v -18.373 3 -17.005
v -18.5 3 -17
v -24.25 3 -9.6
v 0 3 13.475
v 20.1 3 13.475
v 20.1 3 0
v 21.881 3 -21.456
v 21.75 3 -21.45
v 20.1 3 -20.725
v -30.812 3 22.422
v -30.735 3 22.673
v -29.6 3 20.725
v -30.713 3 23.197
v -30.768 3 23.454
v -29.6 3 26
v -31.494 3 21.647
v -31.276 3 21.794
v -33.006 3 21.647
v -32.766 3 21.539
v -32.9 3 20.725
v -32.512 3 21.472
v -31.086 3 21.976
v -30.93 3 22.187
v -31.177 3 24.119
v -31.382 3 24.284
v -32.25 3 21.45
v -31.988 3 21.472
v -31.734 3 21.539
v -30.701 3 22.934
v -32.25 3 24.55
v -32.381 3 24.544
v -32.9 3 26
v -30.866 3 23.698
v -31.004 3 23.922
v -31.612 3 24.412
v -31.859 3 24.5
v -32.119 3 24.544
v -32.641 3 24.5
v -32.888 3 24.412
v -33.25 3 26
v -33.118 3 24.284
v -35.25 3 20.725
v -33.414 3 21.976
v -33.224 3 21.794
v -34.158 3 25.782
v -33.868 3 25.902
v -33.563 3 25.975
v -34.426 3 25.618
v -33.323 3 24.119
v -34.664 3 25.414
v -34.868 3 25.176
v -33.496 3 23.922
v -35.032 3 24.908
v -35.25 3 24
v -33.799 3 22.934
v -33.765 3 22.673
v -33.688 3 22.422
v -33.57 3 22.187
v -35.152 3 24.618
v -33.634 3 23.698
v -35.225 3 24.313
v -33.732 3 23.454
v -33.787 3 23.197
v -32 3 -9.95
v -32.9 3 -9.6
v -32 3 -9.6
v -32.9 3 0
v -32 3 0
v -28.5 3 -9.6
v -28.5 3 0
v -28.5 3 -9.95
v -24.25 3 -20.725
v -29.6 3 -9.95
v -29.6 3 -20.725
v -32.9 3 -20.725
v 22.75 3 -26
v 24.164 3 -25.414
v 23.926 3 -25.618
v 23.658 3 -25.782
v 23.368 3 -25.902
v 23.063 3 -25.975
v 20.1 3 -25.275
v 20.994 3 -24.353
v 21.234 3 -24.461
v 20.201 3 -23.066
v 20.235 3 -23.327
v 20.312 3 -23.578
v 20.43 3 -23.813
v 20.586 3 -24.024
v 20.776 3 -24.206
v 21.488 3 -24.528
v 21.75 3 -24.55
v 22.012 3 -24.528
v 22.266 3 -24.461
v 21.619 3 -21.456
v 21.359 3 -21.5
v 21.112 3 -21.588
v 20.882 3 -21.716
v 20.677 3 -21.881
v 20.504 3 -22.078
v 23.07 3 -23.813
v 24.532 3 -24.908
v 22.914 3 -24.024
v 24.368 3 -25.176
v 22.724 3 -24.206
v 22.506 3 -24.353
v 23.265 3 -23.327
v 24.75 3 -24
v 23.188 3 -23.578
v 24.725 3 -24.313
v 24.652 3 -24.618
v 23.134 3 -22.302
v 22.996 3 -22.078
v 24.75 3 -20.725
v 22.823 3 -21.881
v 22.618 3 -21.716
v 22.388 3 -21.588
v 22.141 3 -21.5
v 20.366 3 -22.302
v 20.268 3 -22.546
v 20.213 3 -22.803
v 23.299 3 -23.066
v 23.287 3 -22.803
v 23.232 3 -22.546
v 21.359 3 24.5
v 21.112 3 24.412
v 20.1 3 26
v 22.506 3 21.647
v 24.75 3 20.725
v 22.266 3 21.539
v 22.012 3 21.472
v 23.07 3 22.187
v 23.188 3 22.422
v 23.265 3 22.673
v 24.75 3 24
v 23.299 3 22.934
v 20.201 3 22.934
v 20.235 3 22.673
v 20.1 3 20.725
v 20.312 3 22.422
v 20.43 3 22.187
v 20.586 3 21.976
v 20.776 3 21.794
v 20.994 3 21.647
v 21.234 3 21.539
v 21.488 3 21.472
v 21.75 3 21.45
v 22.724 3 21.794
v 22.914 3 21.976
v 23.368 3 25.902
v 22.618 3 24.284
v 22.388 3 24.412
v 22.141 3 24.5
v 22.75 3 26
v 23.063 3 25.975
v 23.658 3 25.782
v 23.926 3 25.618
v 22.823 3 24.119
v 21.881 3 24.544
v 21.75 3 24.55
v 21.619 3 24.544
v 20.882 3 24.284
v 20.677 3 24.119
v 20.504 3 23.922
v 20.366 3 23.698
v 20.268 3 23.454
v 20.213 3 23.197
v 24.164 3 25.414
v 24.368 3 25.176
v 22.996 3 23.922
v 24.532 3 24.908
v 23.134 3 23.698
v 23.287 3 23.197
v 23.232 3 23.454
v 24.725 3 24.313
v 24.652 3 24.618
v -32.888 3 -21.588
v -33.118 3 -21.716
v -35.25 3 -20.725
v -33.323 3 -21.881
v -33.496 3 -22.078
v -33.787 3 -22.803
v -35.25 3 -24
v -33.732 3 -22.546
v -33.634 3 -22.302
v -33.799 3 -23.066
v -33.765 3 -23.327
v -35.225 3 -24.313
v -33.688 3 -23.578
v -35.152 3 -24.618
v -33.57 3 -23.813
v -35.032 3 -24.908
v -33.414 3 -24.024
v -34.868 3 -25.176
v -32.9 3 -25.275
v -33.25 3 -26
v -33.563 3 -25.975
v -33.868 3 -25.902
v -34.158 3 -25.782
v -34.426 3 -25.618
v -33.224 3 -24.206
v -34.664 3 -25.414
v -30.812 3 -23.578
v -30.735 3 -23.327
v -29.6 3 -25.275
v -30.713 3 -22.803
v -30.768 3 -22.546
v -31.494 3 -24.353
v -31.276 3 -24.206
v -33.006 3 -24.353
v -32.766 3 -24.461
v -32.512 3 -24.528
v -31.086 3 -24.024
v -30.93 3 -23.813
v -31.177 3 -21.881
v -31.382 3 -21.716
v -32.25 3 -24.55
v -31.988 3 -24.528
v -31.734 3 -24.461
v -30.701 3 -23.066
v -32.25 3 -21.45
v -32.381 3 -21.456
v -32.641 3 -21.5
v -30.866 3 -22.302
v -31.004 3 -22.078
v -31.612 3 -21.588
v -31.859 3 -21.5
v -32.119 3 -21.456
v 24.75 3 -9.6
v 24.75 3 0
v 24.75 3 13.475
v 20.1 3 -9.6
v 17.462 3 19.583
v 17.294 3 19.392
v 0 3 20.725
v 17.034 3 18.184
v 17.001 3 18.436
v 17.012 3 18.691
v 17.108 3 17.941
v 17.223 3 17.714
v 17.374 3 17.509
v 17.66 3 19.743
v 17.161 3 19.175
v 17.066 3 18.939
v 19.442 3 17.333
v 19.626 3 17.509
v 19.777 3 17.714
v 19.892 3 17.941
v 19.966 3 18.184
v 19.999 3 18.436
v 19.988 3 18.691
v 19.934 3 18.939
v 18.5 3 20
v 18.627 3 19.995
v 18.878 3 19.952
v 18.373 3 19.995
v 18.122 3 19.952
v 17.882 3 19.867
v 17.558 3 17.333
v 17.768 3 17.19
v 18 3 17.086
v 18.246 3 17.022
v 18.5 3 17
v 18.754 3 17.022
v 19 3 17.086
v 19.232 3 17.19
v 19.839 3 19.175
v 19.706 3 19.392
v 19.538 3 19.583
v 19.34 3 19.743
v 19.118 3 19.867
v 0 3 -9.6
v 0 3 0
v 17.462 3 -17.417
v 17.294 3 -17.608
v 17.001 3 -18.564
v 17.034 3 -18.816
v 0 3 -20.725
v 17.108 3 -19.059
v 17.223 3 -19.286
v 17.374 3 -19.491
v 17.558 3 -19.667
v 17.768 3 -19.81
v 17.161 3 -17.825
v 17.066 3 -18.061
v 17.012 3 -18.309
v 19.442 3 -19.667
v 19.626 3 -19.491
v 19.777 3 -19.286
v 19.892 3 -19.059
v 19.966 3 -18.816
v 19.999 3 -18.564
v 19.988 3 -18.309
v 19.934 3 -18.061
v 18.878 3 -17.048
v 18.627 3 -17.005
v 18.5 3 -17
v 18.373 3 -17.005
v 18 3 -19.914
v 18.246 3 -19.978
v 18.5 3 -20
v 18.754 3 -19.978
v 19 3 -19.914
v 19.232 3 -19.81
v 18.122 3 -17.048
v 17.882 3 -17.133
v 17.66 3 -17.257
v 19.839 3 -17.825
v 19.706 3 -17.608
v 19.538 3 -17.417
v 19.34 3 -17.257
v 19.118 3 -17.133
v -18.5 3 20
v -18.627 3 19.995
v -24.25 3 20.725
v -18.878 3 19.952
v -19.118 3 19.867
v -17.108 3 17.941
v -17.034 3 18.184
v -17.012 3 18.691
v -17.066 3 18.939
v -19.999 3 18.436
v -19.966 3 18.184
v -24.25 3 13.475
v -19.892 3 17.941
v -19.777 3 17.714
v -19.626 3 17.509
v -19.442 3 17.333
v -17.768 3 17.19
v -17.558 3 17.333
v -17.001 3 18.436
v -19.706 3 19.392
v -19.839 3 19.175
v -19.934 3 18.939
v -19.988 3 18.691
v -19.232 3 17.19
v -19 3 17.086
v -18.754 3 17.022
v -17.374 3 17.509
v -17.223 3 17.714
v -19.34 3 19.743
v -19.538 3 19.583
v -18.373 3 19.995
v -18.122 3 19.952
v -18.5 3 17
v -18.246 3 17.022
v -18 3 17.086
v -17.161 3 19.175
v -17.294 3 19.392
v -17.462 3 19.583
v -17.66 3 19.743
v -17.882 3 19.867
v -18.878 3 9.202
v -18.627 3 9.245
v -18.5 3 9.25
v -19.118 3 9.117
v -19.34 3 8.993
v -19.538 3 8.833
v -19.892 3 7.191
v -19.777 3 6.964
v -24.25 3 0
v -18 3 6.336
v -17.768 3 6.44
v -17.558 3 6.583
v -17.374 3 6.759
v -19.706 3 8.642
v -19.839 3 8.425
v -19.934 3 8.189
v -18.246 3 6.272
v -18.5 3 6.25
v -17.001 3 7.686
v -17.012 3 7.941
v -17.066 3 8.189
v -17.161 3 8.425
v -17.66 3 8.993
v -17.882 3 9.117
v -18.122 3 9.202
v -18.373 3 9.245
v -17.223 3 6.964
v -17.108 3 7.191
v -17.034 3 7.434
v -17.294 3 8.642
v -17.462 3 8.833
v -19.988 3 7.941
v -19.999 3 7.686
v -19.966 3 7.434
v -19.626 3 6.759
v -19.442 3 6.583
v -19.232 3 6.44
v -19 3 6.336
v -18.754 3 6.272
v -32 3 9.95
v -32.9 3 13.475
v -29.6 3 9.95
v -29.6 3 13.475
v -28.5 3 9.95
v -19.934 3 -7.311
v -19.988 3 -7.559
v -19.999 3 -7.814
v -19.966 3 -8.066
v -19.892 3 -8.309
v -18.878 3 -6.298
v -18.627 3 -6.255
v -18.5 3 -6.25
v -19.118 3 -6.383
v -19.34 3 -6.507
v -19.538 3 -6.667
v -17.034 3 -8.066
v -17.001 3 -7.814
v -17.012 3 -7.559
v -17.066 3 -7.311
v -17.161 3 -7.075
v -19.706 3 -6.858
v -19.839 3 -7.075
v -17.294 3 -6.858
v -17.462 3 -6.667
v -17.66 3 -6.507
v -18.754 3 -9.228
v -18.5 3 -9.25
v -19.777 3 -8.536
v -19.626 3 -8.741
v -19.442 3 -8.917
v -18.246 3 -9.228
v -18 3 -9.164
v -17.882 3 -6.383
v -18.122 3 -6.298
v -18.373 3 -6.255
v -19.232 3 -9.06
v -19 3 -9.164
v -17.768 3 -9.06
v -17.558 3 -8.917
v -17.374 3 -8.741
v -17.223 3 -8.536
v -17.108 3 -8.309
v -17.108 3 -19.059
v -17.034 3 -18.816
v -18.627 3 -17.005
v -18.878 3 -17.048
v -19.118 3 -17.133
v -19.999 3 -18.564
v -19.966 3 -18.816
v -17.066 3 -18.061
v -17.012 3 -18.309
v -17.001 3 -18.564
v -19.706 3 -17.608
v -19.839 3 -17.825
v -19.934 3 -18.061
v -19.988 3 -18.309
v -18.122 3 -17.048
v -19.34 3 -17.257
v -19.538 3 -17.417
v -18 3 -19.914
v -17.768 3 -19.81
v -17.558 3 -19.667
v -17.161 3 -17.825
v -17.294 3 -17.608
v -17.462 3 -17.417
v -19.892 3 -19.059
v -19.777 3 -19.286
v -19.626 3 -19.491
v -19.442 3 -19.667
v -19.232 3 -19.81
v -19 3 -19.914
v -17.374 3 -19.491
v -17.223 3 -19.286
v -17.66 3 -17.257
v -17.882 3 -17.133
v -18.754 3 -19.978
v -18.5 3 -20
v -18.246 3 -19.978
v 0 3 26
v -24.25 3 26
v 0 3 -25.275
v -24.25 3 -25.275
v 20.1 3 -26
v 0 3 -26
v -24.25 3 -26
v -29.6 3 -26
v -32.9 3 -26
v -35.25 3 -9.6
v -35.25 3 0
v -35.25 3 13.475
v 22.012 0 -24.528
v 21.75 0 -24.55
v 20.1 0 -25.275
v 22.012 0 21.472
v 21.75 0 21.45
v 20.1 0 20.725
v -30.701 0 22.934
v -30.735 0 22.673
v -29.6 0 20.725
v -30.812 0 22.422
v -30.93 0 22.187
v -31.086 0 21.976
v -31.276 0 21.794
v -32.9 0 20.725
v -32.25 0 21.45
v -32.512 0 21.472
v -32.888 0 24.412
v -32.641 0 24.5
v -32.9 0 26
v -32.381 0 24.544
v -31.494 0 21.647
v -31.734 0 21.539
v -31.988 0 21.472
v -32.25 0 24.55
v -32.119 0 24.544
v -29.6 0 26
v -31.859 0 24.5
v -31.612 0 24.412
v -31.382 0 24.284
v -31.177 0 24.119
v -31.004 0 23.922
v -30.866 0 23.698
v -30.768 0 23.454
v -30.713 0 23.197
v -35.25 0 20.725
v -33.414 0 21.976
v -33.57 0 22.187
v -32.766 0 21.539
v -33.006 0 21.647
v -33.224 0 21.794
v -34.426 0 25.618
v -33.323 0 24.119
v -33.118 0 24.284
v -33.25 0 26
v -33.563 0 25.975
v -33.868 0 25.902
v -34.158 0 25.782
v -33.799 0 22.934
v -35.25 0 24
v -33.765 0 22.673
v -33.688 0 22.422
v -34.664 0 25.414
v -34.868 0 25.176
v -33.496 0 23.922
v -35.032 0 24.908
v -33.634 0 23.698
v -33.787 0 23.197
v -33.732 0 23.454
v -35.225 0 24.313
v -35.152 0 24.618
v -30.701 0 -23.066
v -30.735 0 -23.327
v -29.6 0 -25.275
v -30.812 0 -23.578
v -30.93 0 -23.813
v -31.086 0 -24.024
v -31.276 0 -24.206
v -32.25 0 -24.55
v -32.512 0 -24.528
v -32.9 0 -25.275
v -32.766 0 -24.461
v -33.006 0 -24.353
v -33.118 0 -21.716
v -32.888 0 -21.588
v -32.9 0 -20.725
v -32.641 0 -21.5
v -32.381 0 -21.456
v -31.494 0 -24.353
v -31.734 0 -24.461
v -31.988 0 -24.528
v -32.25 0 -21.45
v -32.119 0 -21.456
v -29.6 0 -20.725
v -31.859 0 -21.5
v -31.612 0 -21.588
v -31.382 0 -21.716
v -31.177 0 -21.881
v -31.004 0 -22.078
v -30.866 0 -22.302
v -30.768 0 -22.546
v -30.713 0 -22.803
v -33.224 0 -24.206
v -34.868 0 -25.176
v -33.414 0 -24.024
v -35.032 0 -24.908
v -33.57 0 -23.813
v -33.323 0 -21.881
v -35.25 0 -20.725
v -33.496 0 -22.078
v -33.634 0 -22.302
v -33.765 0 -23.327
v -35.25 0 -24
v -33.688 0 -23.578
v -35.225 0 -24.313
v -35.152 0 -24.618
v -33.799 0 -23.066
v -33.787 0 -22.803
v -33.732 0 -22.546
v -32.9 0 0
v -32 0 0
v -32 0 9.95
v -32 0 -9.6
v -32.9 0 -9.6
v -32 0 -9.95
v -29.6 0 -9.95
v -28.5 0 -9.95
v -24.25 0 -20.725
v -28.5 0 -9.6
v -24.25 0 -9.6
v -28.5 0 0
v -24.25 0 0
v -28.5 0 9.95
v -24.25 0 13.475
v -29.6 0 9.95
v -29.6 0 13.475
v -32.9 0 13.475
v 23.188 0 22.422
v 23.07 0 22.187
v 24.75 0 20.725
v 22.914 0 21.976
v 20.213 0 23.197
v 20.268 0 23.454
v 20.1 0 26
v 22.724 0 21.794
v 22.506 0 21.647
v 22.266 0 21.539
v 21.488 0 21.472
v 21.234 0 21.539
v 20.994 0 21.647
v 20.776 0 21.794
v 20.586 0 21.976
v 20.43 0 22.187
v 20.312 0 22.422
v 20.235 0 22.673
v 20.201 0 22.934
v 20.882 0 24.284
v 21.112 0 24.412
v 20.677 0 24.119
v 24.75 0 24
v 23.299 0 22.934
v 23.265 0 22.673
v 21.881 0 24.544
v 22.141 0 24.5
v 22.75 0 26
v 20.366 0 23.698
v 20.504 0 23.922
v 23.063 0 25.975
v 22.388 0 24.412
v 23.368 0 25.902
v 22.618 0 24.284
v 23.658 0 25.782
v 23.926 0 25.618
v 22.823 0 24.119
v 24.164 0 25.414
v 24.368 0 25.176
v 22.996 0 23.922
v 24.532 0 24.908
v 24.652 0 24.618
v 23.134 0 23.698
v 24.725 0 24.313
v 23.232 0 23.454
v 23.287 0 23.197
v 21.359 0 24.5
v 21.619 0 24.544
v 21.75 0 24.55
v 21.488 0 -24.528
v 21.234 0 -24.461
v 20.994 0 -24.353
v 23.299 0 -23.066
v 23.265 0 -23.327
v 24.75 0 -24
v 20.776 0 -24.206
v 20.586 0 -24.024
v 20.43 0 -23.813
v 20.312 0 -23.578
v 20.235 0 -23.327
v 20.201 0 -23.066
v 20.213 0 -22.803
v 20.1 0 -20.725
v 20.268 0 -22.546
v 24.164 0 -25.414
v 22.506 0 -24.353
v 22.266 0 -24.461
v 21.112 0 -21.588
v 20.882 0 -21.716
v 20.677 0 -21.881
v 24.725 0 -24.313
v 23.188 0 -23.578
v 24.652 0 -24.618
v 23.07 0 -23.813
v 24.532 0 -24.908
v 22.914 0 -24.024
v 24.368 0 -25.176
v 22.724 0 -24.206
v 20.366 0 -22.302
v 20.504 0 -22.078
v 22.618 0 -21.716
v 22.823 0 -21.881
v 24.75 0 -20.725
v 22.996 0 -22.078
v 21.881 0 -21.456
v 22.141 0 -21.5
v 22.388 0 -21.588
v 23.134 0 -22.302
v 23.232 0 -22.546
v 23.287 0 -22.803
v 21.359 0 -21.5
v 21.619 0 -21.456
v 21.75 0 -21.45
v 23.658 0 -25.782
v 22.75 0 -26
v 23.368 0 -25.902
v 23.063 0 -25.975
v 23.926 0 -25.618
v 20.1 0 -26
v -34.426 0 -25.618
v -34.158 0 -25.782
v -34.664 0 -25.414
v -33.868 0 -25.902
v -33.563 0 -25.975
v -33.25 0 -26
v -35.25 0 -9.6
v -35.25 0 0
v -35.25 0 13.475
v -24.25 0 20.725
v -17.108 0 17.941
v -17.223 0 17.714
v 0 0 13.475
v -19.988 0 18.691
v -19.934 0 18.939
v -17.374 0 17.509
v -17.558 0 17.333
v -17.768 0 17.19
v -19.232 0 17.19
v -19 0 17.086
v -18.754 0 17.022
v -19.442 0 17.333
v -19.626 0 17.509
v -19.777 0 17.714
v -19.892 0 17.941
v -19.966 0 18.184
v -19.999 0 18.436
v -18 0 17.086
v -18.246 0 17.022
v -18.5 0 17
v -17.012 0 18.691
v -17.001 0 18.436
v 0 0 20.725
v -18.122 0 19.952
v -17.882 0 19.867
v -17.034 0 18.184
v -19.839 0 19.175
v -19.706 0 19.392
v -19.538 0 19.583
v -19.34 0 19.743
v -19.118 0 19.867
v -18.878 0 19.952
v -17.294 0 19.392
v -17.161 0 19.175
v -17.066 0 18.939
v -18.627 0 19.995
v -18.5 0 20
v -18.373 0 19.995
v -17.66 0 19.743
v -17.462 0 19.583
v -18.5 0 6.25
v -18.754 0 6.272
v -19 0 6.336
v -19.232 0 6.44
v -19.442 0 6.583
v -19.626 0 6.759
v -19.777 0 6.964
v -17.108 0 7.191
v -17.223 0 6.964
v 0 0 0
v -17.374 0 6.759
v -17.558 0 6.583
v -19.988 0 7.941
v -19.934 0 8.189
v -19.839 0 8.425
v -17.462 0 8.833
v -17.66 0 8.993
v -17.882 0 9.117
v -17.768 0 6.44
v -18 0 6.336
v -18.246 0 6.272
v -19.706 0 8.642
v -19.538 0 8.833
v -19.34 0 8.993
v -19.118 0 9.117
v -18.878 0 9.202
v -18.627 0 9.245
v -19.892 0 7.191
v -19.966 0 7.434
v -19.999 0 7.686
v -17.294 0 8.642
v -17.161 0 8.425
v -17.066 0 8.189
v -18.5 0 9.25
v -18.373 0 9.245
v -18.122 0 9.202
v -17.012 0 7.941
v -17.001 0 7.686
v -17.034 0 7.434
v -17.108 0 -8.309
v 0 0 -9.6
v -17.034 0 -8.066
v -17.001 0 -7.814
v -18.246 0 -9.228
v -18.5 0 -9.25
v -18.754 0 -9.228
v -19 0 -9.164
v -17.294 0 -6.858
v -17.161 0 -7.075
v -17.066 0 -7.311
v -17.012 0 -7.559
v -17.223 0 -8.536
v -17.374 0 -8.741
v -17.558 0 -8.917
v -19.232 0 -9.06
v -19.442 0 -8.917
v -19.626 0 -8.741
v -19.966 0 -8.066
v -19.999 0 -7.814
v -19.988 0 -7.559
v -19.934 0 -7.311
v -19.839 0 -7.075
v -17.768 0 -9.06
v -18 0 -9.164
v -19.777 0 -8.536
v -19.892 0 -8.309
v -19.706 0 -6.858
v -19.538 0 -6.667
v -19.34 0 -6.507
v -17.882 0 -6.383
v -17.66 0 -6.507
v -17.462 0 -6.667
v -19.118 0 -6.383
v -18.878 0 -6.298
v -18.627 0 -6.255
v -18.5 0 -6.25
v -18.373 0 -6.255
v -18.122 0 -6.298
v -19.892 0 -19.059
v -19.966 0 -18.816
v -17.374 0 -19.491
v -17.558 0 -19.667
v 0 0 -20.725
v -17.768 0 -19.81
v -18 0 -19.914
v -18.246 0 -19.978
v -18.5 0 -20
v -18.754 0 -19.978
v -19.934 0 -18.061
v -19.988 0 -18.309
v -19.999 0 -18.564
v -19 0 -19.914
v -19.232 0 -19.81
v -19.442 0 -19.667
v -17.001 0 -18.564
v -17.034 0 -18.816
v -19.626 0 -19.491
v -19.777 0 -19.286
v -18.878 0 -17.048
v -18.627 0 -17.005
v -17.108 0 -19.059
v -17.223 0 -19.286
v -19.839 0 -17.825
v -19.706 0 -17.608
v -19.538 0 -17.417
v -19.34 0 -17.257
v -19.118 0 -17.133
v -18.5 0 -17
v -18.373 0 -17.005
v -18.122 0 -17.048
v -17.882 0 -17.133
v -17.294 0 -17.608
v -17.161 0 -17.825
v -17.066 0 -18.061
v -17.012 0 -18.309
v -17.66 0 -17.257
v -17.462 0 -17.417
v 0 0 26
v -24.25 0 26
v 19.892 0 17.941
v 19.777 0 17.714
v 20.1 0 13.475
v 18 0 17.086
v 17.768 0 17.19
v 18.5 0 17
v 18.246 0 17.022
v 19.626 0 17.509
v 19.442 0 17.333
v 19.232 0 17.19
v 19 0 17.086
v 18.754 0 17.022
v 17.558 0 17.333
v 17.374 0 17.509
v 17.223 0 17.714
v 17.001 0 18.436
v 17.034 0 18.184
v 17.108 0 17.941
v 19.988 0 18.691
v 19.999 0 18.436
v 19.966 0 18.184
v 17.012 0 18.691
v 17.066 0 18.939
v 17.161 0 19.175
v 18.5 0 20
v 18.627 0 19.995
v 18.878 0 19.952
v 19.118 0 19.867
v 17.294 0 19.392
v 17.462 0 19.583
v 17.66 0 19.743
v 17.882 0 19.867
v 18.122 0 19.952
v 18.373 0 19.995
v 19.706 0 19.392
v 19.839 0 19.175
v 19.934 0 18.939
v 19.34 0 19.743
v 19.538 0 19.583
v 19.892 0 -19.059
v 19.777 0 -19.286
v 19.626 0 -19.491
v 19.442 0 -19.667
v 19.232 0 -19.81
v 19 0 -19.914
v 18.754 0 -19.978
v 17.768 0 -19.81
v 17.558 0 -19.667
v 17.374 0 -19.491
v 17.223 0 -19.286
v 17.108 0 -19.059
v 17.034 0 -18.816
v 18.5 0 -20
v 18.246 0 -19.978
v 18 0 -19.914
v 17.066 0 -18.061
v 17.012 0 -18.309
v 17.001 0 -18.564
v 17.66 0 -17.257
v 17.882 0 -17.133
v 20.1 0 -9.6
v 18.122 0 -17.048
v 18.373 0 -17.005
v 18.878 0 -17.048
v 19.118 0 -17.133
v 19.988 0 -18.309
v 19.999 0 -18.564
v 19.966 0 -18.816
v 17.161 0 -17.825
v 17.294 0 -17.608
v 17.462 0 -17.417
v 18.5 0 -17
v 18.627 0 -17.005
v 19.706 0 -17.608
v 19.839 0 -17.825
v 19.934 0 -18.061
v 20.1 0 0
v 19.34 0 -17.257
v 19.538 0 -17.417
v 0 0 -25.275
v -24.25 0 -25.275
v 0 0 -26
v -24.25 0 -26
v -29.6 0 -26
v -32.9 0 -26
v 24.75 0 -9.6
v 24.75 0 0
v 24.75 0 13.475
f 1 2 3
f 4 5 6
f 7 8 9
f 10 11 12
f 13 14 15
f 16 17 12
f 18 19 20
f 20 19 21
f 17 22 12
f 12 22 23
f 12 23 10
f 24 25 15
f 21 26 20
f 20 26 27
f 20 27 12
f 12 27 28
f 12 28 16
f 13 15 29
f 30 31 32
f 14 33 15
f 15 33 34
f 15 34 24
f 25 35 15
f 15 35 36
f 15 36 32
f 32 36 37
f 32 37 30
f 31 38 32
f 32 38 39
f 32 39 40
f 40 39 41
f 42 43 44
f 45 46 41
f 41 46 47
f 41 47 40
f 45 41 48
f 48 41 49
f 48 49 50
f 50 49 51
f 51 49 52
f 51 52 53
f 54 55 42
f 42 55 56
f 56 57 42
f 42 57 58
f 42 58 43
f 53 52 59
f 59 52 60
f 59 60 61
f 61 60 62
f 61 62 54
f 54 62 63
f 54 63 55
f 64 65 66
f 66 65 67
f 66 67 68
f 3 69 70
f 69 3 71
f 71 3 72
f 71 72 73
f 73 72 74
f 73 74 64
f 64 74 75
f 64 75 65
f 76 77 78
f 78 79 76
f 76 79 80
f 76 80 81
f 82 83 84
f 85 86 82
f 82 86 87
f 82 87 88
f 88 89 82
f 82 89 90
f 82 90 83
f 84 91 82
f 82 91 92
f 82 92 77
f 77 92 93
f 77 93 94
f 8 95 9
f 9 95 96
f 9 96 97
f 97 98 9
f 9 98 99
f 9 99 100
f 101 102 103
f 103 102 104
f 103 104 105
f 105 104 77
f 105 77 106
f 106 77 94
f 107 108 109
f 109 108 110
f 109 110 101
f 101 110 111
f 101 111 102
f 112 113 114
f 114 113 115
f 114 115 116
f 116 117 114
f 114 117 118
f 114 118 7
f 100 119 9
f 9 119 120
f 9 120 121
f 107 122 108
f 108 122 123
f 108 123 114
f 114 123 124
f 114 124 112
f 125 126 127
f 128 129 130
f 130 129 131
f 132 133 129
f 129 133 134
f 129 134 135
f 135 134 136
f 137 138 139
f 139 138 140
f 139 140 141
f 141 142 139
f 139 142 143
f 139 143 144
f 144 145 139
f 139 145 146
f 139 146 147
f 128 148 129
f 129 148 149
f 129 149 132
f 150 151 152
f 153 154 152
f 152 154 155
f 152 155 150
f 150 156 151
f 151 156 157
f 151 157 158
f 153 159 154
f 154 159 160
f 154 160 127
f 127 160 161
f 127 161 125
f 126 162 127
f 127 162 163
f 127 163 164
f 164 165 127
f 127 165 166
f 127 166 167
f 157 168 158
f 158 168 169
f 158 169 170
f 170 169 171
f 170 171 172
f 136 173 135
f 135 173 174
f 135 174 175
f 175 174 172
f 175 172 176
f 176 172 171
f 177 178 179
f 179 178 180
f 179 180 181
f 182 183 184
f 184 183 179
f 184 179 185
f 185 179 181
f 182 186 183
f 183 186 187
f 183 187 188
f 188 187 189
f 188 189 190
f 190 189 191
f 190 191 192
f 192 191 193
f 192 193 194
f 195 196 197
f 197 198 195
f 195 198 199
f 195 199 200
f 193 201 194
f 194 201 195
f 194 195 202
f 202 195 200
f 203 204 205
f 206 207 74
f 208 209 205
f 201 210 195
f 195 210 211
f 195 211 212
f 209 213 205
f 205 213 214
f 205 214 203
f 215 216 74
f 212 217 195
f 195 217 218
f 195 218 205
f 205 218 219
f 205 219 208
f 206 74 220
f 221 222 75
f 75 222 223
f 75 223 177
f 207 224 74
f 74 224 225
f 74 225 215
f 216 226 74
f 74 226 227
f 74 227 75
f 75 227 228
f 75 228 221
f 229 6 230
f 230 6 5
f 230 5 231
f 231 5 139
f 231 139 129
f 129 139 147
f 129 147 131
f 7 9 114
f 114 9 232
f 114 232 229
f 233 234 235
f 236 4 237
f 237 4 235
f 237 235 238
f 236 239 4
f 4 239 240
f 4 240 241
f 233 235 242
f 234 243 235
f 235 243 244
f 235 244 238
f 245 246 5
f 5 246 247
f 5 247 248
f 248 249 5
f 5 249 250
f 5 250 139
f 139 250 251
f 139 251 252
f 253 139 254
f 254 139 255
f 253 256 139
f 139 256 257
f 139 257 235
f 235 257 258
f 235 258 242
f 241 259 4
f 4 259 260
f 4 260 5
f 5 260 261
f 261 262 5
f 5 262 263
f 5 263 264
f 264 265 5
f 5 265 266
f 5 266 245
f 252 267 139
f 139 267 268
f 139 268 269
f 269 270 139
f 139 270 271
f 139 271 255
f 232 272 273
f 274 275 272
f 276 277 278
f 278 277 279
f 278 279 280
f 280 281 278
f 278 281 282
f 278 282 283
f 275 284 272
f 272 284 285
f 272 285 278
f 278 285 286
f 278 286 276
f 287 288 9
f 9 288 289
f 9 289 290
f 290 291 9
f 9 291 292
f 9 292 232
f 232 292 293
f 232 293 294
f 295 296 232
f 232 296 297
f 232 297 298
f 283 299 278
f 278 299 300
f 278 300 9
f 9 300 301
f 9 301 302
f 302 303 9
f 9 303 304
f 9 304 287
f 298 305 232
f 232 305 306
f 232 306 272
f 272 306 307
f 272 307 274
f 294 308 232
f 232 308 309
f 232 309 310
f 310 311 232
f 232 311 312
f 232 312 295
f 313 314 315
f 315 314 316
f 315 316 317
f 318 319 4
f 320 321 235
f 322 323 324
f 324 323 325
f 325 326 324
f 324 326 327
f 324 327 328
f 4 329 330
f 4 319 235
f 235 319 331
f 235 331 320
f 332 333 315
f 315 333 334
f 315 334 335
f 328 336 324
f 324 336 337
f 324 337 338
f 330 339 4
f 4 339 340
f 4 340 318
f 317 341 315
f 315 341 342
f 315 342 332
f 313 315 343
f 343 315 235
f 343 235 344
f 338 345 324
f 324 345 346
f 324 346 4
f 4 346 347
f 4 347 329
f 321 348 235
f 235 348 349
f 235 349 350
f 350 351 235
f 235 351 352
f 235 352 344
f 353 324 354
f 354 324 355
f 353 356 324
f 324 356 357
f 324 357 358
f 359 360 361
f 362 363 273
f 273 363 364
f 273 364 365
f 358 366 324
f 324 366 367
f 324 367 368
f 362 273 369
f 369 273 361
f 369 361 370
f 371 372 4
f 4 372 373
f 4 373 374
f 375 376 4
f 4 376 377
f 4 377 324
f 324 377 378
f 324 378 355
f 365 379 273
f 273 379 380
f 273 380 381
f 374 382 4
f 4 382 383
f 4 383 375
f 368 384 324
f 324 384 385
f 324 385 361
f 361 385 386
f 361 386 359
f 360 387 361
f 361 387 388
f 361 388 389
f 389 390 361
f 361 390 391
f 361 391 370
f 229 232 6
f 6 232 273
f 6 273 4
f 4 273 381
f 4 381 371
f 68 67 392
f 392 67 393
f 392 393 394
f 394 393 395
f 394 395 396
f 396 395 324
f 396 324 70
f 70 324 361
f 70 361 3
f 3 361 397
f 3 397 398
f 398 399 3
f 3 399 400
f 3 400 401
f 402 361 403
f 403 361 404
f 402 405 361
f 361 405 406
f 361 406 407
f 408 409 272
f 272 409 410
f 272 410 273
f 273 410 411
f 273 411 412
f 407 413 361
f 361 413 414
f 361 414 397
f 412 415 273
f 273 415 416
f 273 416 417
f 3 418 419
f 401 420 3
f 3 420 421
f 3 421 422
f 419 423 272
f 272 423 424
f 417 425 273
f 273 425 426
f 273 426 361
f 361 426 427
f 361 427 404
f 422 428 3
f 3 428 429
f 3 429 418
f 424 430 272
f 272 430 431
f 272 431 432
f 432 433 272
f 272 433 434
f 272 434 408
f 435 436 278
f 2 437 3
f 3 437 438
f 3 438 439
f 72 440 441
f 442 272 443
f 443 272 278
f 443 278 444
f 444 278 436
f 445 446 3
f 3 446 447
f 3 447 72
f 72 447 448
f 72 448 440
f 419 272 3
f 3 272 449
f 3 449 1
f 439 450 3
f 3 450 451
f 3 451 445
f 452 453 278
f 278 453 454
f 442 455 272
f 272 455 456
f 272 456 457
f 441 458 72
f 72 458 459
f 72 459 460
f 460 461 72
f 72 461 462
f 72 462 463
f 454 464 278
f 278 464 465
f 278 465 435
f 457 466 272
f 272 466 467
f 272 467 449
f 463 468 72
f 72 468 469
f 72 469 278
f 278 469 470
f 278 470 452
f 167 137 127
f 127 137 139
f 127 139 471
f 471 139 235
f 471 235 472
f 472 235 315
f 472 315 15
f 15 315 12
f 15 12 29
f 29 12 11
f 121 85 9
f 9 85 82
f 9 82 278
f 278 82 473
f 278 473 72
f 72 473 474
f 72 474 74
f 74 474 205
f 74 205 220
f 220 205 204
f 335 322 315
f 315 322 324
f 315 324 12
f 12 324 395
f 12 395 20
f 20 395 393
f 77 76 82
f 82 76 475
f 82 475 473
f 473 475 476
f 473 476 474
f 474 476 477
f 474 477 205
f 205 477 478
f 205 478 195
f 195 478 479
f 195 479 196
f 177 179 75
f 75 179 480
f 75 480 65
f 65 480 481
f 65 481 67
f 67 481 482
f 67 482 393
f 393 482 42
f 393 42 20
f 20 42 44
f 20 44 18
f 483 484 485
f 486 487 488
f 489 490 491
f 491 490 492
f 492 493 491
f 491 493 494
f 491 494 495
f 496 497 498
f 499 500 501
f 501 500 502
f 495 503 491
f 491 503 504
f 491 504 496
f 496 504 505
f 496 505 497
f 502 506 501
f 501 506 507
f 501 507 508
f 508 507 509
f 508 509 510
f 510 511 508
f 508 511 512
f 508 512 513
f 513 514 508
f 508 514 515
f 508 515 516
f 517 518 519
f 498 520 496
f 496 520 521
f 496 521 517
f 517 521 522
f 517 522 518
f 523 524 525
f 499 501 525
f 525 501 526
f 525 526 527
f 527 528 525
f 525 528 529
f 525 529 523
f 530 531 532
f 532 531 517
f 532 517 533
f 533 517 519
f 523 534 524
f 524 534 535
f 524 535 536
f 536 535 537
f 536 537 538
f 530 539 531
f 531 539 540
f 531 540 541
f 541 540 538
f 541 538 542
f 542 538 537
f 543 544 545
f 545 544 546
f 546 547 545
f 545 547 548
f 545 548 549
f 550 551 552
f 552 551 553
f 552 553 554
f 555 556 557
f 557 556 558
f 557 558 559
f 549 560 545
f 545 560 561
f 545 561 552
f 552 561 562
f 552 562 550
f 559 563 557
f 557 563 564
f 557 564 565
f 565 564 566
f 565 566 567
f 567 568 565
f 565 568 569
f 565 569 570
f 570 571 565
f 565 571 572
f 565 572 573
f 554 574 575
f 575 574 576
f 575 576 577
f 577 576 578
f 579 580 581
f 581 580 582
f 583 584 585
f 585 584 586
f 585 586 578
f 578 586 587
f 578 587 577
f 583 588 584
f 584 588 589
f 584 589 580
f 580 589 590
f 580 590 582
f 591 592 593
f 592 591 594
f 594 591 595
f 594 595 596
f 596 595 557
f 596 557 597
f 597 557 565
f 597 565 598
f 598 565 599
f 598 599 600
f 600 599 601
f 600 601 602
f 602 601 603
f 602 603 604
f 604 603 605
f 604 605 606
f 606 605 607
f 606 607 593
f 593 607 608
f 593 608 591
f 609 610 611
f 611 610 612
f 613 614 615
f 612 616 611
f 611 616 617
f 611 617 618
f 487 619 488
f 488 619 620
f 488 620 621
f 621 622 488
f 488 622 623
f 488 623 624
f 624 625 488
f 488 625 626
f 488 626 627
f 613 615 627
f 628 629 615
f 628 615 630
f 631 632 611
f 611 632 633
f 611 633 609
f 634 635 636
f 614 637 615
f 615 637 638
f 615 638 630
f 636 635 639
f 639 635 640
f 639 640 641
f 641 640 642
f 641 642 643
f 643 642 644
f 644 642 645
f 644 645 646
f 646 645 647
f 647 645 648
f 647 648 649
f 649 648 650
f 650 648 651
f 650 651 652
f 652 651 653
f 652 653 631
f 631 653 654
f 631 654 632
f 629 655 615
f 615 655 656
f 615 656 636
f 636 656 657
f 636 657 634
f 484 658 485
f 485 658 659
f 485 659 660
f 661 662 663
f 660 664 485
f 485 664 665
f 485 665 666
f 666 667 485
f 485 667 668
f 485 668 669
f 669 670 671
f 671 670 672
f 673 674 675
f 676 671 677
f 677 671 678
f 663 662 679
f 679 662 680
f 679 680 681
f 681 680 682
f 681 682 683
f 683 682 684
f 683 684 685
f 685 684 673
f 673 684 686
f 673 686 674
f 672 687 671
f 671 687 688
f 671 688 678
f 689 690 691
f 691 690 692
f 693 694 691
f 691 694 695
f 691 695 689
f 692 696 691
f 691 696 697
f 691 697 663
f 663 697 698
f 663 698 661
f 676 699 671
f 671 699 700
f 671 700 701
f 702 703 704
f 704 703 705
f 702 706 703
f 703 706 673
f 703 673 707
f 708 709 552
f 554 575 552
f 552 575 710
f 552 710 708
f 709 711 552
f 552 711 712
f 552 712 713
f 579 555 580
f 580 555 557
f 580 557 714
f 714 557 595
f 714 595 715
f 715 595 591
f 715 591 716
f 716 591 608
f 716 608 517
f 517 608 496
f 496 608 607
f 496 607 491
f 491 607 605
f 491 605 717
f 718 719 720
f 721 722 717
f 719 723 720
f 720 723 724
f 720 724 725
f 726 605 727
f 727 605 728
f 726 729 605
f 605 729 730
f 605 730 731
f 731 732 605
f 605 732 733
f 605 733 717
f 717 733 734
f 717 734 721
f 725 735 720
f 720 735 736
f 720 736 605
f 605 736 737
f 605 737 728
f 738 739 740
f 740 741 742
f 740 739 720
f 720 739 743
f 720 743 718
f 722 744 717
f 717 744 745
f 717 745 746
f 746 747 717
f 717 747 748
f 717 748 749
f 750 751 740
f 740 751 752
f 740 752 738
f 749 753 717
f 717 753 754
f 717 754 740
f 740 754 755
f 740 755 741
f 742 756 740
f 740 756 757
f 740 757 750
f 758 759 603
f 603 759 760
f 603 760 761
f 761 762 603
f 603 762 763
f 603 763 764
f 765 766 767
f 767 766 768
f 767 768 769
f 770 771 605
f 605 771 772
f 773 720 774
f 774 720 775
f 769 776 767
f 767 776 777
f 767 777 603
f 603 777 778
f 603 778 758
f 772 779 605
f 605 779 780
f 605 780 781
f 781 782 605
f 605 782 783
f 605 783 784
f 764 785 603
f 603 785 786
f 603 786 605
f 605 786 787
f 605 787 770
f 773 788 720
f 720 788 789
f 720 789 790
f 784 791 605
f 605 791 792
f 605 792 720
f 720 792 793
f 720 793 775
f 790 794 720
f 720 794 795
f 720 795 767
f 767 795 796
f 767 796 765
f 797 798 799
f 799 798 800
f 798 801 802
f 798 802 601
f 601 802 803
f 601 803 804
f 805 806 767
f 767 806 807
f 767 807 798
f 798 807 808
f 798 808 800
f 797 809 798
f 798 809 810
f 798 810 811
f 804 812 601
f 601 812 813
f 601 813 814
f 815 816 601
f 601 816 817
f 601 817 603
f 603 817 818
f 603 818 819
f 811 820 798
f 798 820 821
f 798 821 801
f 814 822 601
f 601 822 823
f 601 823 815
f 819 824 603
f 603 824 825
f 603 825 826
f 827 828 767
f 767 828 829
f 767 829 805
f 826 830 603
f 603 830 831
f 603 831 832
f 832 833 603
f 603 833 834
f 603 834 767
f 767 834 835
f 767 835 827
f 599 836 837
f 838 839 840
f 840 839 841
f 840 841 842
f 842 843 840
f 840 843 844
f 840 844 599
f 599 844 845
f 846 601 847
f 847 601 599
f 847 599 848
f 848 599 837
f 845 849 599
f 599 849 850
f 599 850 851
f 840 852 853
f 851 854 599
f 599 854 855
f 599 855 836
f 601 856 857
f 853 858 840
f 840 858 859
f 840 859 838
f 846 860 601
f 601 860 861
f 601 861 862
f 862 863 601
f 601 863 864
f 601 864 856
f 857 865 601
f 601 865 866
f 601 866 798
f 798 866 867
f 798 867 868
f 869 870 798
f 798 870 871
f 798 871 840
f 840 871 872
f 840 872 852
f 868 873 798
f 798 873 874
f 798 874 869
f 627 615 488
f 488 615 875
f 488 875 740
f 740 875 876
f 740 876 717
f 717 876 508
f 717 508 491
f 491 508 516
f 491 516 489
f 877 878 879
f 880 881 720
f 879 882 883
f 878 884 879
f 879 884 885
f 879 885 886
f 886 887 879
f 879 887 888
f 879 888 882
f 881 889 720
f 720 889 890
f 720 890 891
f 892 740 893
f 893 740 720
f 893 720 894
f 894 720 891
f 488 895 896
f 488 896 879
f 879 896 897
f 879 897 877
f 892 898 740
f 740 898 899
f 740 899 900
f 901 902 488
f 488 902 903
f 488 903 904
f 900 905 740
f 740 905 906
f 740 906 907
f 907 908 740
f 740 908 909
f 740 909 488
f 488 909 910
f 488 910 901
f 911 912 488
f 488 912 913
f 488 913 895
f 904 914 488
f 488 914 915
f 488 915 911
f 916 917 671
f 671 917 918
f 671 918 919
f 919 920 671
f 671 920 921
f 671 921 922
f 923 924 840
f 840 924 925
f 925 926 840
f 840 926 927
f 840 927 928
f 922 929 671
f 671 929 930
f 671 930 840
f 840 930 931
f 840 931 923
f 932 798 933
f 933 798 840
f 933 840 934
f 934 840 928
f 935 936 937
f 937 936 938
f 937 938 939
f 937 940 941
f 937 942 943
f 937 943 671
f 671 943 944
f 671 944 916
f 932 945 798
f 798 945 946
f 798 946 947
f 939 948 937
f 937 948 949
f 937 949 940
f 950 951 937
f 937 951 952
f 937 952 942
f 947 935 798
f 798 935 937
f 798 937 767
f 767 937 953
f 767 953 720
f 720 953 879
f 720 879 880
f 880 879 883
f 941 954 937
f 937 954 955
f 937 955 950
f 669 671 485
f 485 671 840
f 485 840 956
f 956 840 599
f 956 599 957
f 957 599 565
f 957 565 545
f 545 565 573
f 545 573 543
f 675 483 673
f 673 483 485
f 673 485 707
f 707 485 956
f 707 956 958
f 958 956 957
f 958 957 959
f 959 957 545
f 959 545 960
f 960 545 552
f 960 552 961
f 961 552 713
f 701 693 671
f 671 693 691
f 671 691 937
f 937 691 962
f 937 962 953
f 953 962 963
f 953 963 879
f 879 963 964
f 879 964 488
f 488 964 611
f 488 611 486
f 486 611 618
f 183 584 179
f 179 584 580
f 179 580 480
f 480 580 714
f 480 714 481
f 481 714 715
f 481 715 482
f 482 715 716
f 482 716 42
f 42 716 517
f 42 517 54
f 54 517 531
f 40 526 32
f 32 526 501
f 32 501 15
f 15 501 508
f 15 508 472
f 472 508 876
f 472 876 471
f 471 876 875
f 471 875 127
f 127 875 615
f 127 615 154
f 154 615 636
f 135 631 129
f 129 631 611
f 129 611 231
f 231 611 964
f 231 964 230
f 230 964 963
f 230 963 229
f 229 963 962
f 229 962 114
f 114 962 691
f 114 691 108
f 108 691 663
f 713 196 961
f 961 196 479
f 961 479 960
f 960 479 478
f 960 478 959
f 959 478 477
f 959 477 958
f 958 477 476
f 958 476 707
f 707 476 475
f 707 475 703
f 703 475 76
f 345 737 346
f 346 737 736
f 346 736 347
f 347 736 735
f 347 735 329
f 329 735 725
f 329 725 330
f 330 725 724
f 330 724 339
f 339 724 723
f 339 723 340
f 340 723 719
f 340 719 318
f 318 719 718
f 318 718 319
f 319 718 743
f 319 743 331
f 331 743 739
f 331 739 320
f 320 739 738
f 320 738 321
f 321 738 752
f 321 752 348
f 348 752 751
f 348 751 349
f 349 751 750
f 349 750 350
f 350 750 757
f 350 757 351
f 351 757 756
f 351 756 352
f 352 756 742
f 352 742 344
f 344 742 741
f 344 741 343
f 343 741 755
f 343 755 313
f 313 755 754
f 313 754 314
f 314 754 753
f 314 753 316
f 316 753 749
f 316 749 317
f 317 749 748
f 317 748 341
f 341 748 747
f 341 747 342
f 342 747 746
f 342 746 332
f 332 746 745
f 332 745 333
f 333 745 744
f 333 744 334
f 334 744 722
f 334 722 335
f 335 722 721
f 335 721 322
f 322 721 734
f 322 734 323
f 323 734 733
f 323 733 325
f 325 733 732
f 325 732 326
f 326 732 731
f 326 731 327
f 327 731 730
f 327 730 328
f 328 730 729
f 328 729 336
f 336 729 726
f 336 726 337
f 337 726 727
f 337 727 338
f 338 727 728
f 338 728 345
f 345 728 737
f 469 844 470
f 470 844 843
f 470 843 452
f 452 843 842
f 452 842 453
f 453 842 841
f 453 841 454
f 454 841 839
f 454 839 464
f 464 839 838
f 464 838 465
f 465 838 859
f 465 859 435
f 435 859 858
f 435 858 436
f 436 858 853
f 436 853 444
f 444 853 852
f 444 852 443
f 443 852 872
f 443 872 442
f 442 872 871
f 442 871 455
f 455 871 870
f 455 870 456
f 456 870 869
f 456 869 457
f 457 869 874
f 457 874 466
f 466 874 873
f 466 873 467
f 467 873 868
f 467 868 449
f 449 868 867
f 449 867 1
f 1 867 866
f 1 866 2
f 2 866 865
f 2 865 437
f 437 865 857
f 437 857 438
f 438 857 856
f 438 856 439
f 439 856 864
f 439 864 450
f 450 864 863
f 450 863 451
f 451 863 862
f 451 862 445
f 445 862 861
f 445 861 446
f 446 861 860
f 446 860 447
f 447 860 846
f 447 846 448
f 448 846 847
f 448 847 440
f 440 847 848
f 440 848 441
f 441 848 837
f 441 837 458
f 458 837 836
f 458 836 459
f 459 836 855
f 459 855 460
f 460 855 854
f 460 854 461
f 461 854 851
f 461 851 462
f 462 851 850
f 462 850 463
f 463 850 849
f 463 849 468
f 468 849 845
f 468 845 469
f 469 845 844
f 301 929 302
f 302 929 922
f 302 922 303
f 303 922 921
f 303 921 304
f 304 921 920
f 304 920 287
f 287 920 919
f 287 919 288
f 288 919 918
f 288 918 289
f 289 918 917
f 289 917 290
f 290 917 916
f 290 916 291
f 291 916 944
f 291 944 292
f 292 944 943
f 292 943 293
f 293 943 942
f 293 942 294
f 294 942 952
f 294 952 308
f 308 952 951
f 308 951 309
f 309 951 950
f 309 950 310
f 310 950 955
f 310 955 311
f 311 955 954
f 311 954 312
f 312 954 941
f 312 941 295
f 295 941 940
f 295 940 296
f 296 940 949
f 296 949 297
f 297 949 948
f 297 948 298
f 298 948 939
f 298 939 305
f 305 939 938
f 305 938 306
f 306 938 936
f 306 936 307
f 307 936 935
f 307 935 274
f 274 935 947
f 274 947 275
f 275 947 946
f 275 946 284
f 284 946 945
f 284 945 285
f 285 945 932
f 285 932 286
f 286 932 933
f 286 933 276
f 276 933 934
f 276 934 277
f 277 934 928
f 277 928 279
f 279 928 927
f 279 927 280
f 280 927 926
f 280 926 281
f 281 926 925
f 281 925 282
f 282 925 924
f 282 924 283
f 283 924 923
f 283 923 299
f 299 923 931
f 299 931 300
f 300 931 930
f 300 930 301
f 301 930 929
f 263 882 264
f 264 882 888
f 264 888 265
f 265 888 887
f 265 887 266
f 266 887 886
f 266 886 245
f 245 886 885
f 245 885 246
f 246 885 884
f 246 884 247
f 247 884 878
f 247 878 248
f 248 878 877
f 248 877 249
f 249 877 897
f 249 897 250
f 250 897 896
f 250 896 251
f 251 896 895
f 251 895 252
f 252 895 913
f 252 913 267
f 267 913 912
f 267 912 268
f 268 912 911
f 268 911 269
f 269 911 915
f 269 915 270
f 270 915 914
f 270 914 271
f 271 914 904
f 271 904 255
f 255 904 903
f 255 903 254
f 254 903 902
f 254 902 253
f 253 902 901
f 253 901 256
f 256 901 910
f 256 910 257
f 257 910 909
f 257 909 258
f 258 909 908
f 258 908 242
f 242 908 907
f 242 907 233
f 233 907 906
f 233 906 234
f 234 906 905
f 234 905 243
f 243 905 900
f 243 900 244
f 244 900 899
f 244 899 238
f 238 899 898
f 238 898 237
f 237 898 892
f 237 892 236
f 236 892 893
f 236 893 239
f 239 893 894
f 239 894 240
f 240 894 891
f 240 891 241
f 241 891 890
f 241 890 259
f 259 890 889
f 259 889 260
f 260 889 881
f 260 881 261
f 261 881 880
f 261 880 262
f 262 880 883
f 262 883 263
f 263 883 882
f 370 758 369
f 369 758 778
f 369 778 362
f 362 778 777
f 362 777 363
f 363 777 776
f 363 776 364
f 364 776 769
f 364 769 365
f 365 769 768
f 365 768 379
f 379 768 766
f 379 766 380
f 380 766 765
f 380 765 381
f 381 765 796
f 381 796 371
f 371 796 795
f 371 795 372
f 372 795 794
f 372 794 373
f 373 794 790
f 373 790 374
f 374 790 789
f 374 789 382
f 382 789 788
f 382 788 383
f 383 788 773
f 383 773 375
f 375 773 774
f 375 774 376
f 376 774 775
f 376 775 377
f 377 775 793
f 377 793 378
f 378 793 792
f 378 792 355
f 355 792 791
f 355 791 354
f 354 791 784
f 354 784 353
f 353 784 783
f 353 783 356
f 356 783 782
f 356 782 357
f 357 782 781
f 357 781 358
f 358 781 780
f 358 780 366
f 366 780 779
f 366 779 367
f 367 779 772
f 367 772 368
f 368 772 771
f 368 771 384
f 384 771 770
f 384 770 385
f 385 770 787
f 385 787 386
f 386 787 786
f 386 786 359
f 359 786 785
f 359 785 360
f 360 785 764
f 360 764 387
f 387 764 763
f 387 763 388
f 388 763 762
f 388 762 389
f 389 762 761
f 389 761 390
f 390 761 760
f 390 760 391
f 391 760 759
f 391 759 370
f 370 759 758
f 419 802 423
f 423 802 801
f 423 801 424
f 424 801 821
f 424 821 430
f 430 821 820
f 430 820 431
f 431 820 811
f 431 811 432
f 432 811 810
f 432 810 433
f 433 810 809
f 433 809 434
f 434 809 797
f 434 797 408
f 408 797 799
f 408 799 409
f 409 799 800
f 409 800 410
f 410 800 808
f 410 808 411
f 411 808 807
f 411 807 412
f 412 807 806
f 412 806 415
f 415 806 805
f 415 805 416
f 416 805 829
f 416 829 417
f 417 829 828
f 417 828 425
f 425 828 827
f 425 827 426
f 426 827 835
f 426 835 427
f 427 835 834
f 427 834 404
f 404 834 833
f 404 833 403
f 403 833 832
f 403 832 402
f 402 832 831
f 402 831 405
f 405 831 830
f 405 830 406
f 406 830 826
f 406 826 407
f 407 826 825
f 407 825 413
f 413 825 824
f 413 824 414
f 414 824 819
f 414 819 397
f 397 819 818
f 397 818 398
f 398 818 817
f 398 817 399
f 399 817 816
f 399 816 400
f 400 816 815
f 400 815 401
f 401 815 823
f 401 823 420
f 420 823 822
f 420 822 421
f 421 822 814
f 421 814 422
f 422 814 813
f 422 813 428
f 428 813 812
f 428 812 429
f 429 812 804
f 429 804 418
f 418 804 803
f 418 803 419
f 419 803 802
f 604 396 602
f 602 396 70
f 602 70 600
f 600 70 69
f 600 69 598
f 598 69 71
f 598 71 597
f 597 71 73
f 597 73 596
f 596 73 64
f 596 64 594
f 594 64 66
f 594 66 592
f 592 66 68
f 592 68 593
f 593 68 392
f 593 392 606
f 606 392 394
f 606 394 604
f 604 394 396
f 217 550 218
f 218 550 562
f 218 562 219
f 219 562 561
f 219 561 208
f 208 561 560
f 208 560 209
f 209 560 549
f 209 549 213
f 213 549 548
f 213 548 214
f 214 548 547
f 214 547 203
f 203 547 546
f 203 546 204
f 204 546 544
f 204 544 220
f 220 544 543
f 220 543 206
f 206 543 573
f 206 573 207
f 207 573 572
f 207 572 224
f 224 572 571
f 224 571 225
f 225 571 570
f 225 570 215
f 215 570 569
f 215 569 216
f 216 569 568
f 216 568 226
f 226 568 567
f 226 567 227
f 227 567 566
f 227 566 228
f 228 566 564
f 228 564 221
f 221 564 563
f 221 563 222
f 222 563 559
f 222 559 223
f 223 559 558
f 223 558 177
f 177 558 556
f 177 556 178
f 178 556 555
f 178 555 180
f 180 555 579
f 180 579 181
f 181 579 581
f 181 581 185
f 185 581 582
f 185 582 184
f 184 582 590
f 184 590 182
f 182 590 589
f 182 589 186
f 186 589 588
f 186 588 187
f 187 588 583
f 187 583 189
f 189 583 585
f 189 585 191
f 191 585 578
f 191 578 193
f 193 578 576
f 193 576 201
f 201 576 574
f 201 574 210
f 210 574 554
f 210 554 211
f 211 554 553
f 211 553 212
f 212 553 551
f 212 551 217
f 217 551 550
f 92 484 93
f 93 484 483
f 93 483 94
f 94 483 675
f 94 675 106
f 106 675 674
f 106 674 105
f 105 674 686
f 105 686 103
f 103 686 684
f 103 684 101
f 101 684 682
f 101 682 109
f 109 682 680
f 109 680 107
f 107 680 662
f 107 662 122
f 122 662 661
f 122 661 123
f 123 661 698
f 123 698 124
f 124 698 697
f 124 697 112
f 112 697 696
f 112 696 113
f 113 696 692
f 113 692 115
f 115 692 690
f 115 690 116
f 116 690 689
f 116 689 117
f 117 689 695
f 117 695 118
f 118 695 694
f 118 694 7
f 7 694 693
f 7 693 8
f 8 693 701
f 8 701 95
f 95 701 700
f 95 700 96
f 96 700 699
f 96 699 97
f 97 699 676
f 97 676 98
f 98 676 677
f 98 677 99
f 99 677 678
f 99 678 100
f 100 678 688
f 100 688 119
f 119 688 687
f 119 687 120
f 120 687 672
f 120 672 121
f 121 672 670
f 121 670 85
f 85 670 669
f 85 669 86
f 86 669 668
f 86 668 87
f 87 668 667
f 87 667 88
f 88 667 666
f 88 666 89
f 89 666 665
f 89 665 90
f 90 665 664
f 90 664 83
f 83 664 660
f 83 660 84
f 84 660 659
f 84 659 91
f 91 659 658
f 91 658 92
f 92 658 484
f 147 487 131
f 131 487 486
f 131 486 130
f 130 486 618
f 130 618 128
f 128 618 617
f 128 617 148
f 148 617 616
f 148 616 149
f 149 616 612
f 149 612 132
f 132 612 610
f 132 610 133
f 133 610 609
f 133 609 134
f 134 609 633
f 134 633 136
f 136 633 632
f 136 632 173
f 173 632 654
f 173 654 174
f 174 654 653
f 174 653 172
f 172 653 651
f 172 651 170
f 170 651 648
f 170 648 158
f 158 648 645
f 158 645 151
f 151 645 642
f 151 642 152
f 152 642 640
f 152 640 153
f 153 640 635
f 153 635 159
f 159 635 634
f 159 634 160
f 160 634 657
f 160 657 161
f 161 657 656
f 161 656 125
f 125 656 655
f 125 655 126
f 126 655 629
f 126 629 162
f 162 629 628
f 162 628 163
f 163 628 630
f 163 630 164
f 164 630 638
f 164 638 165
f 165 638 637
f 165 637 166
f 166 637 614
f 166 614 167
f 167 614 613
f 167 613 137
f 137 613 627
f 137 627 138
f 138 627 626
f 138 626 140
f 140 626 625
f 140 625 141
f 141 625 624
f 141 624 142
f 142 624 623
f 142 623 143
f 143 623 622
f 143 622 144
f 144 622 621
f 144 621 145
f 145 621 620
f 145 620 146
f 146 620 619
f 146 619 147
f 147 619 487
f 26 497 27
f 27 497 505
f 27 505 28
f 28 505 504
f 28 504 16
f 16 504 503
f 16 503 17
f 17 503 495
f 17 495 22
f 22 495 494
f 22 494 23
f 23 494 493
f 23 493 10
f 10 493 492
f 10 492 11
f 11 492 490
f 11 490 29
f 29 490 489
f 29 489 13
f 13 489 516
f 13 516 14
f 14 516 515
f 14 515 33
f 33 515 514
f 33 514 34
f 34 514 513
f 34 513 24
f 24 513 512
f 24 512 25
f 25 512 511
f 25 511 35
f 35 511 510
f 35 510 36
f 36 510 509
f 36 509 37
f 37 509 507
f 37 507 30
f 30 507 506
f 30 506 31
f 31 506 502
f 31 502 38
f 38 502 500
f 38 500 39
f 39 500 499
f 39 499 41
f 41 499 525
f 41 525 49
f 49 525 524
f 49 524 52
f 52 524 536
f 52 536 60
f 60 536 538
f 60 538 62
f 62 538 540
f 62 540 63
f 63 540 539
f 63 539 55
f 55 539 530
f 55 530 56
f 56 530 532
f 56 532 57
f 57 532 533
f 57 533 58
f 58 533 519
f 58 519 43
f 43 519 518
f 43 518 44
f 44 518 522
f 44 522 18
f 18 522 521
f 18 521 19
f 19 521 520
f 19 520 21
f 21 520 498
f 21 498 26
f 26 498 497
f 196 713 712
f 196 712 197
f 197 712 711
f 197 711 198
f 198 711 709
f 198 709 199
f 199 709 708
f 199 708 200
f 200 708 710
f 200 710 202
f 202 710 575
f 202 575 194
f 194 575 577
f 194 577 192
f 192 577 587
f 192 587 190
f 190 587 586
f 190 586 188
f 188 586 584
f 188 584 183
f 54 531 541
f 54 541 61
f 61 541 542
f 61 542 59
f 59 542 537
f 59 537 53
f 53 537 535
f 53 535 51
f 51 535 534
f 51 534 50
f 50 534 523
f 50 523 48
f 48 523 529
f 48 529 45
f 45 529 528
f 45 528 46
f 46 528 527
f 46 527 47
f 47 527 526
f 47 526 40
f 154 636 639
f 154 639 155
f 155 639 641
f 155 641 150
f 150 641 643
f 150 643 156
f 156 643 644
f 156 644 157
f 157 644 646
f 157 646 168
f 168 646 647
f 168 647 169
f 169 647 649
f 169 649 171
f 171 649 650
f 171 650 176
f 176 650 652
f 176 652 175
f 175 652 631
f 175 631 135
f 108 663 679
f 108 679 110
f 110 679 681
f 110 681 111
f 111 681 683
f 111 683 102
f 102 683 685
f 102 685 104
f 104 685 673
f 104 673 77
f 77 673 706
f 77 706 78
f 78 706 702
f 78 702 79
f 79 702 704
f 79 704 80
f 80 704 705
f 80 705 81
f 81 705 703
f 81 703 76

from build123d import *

# Parameters (mm, degrees)
SKETCH1_W           = 60
SKETCH1_H           = 52
SKETCH1_R           = 1.5
SKETCH1_R_2         = 1.55
SKETCH1_W_2         = 3.5
SKETCH1_H_2         = 19.9
BOSS_EXTRUDE1_DEPTH = 3
FILLET1_R           = 2


with BuildPart() as part:
    # Sketch1 → Boss-Extrude1 (new body)
    with BuildSketch(Plane(origin=(0, 0, 0), x_dir=(1, 0, 0), z_dir=(0, 1, 0))):
        with Locations((-5.25, 0)):
            Rectangle(SKETCH1_W, SKETCH1_H)
        with Locations(Location((-18.5, -18.5, 0), (0, 0, 270))):
            Circle(SKETCH1_R, mode=Mode.SUBTRACT)
        with Locations(Location((-18.5, 18.5, 0), (0, 0, 270))):
            Circle(SKETCH1_R, mode=Mode.SUBTRACT)
        with Locations(Location((18.5, 18.5, 0), (0, 0, 270))):
            Circle(SKETCH1_R, mode=Mode.SUBTRACT)
        with Locations(Location((18.5, -18.5, 0), (0, 0, 270))):
            Circle(SKETCH1_R, mode=Mode.SUBTRACT)
        with Locations(Location((-18.5, -7.75, 0), (0, 0, 270))):
            Circle(SKETCH1_R, mode=Mode.SUBTRACT)
        with Locations(Location((-18.5, 7.75, 0), (0, 0, 270))):
            Circle(SKETCH1_R, mode=Mode.SUBTRACT)
        with Locations(Location((-32.25, 23, 0), (0, 0, 270))):
            Circle(SKETCH1_R_2, mode=Mode.SUBTRACT)
        with Locations(Location((21.75, 23, 0), (0, 0, 270))):
            Circle(SKETCH1_R_2, mode=Mode.SUBTRACT)
        with Locations(Location((21.75, -23, 0), (0, 0, 270))):
            Circle(SKETCH1_R_2, mode=Mode.SUBTRACT)
        with Locations(Location((-32.25, -23, 0), (0, 0, 270))):
            Circle(SKETCH1_R_2, mode=Mode.SUBTRACT)
        with Locations((-30.25, 0)):
            Rectangle(SKETCH1_W_2, SKETCH1_H_2, mode=Mode.SUBTRACT)
    extrude(amount=BOSS_EXTRUDE1_DEPTH)

    # Fillet1
    fillet1_edges = [part.edges().sort_by_distance(p)[0] for p in [
        (-35.25, 1.5, -26),
        (24.75, 1.5, -26),
        (24.75, 1.5, 26),
        (-35.25, 1.5, 26),
    ]]
    fillet(fillet1_edges, radius=FILLET1_R)


solid = part.part
